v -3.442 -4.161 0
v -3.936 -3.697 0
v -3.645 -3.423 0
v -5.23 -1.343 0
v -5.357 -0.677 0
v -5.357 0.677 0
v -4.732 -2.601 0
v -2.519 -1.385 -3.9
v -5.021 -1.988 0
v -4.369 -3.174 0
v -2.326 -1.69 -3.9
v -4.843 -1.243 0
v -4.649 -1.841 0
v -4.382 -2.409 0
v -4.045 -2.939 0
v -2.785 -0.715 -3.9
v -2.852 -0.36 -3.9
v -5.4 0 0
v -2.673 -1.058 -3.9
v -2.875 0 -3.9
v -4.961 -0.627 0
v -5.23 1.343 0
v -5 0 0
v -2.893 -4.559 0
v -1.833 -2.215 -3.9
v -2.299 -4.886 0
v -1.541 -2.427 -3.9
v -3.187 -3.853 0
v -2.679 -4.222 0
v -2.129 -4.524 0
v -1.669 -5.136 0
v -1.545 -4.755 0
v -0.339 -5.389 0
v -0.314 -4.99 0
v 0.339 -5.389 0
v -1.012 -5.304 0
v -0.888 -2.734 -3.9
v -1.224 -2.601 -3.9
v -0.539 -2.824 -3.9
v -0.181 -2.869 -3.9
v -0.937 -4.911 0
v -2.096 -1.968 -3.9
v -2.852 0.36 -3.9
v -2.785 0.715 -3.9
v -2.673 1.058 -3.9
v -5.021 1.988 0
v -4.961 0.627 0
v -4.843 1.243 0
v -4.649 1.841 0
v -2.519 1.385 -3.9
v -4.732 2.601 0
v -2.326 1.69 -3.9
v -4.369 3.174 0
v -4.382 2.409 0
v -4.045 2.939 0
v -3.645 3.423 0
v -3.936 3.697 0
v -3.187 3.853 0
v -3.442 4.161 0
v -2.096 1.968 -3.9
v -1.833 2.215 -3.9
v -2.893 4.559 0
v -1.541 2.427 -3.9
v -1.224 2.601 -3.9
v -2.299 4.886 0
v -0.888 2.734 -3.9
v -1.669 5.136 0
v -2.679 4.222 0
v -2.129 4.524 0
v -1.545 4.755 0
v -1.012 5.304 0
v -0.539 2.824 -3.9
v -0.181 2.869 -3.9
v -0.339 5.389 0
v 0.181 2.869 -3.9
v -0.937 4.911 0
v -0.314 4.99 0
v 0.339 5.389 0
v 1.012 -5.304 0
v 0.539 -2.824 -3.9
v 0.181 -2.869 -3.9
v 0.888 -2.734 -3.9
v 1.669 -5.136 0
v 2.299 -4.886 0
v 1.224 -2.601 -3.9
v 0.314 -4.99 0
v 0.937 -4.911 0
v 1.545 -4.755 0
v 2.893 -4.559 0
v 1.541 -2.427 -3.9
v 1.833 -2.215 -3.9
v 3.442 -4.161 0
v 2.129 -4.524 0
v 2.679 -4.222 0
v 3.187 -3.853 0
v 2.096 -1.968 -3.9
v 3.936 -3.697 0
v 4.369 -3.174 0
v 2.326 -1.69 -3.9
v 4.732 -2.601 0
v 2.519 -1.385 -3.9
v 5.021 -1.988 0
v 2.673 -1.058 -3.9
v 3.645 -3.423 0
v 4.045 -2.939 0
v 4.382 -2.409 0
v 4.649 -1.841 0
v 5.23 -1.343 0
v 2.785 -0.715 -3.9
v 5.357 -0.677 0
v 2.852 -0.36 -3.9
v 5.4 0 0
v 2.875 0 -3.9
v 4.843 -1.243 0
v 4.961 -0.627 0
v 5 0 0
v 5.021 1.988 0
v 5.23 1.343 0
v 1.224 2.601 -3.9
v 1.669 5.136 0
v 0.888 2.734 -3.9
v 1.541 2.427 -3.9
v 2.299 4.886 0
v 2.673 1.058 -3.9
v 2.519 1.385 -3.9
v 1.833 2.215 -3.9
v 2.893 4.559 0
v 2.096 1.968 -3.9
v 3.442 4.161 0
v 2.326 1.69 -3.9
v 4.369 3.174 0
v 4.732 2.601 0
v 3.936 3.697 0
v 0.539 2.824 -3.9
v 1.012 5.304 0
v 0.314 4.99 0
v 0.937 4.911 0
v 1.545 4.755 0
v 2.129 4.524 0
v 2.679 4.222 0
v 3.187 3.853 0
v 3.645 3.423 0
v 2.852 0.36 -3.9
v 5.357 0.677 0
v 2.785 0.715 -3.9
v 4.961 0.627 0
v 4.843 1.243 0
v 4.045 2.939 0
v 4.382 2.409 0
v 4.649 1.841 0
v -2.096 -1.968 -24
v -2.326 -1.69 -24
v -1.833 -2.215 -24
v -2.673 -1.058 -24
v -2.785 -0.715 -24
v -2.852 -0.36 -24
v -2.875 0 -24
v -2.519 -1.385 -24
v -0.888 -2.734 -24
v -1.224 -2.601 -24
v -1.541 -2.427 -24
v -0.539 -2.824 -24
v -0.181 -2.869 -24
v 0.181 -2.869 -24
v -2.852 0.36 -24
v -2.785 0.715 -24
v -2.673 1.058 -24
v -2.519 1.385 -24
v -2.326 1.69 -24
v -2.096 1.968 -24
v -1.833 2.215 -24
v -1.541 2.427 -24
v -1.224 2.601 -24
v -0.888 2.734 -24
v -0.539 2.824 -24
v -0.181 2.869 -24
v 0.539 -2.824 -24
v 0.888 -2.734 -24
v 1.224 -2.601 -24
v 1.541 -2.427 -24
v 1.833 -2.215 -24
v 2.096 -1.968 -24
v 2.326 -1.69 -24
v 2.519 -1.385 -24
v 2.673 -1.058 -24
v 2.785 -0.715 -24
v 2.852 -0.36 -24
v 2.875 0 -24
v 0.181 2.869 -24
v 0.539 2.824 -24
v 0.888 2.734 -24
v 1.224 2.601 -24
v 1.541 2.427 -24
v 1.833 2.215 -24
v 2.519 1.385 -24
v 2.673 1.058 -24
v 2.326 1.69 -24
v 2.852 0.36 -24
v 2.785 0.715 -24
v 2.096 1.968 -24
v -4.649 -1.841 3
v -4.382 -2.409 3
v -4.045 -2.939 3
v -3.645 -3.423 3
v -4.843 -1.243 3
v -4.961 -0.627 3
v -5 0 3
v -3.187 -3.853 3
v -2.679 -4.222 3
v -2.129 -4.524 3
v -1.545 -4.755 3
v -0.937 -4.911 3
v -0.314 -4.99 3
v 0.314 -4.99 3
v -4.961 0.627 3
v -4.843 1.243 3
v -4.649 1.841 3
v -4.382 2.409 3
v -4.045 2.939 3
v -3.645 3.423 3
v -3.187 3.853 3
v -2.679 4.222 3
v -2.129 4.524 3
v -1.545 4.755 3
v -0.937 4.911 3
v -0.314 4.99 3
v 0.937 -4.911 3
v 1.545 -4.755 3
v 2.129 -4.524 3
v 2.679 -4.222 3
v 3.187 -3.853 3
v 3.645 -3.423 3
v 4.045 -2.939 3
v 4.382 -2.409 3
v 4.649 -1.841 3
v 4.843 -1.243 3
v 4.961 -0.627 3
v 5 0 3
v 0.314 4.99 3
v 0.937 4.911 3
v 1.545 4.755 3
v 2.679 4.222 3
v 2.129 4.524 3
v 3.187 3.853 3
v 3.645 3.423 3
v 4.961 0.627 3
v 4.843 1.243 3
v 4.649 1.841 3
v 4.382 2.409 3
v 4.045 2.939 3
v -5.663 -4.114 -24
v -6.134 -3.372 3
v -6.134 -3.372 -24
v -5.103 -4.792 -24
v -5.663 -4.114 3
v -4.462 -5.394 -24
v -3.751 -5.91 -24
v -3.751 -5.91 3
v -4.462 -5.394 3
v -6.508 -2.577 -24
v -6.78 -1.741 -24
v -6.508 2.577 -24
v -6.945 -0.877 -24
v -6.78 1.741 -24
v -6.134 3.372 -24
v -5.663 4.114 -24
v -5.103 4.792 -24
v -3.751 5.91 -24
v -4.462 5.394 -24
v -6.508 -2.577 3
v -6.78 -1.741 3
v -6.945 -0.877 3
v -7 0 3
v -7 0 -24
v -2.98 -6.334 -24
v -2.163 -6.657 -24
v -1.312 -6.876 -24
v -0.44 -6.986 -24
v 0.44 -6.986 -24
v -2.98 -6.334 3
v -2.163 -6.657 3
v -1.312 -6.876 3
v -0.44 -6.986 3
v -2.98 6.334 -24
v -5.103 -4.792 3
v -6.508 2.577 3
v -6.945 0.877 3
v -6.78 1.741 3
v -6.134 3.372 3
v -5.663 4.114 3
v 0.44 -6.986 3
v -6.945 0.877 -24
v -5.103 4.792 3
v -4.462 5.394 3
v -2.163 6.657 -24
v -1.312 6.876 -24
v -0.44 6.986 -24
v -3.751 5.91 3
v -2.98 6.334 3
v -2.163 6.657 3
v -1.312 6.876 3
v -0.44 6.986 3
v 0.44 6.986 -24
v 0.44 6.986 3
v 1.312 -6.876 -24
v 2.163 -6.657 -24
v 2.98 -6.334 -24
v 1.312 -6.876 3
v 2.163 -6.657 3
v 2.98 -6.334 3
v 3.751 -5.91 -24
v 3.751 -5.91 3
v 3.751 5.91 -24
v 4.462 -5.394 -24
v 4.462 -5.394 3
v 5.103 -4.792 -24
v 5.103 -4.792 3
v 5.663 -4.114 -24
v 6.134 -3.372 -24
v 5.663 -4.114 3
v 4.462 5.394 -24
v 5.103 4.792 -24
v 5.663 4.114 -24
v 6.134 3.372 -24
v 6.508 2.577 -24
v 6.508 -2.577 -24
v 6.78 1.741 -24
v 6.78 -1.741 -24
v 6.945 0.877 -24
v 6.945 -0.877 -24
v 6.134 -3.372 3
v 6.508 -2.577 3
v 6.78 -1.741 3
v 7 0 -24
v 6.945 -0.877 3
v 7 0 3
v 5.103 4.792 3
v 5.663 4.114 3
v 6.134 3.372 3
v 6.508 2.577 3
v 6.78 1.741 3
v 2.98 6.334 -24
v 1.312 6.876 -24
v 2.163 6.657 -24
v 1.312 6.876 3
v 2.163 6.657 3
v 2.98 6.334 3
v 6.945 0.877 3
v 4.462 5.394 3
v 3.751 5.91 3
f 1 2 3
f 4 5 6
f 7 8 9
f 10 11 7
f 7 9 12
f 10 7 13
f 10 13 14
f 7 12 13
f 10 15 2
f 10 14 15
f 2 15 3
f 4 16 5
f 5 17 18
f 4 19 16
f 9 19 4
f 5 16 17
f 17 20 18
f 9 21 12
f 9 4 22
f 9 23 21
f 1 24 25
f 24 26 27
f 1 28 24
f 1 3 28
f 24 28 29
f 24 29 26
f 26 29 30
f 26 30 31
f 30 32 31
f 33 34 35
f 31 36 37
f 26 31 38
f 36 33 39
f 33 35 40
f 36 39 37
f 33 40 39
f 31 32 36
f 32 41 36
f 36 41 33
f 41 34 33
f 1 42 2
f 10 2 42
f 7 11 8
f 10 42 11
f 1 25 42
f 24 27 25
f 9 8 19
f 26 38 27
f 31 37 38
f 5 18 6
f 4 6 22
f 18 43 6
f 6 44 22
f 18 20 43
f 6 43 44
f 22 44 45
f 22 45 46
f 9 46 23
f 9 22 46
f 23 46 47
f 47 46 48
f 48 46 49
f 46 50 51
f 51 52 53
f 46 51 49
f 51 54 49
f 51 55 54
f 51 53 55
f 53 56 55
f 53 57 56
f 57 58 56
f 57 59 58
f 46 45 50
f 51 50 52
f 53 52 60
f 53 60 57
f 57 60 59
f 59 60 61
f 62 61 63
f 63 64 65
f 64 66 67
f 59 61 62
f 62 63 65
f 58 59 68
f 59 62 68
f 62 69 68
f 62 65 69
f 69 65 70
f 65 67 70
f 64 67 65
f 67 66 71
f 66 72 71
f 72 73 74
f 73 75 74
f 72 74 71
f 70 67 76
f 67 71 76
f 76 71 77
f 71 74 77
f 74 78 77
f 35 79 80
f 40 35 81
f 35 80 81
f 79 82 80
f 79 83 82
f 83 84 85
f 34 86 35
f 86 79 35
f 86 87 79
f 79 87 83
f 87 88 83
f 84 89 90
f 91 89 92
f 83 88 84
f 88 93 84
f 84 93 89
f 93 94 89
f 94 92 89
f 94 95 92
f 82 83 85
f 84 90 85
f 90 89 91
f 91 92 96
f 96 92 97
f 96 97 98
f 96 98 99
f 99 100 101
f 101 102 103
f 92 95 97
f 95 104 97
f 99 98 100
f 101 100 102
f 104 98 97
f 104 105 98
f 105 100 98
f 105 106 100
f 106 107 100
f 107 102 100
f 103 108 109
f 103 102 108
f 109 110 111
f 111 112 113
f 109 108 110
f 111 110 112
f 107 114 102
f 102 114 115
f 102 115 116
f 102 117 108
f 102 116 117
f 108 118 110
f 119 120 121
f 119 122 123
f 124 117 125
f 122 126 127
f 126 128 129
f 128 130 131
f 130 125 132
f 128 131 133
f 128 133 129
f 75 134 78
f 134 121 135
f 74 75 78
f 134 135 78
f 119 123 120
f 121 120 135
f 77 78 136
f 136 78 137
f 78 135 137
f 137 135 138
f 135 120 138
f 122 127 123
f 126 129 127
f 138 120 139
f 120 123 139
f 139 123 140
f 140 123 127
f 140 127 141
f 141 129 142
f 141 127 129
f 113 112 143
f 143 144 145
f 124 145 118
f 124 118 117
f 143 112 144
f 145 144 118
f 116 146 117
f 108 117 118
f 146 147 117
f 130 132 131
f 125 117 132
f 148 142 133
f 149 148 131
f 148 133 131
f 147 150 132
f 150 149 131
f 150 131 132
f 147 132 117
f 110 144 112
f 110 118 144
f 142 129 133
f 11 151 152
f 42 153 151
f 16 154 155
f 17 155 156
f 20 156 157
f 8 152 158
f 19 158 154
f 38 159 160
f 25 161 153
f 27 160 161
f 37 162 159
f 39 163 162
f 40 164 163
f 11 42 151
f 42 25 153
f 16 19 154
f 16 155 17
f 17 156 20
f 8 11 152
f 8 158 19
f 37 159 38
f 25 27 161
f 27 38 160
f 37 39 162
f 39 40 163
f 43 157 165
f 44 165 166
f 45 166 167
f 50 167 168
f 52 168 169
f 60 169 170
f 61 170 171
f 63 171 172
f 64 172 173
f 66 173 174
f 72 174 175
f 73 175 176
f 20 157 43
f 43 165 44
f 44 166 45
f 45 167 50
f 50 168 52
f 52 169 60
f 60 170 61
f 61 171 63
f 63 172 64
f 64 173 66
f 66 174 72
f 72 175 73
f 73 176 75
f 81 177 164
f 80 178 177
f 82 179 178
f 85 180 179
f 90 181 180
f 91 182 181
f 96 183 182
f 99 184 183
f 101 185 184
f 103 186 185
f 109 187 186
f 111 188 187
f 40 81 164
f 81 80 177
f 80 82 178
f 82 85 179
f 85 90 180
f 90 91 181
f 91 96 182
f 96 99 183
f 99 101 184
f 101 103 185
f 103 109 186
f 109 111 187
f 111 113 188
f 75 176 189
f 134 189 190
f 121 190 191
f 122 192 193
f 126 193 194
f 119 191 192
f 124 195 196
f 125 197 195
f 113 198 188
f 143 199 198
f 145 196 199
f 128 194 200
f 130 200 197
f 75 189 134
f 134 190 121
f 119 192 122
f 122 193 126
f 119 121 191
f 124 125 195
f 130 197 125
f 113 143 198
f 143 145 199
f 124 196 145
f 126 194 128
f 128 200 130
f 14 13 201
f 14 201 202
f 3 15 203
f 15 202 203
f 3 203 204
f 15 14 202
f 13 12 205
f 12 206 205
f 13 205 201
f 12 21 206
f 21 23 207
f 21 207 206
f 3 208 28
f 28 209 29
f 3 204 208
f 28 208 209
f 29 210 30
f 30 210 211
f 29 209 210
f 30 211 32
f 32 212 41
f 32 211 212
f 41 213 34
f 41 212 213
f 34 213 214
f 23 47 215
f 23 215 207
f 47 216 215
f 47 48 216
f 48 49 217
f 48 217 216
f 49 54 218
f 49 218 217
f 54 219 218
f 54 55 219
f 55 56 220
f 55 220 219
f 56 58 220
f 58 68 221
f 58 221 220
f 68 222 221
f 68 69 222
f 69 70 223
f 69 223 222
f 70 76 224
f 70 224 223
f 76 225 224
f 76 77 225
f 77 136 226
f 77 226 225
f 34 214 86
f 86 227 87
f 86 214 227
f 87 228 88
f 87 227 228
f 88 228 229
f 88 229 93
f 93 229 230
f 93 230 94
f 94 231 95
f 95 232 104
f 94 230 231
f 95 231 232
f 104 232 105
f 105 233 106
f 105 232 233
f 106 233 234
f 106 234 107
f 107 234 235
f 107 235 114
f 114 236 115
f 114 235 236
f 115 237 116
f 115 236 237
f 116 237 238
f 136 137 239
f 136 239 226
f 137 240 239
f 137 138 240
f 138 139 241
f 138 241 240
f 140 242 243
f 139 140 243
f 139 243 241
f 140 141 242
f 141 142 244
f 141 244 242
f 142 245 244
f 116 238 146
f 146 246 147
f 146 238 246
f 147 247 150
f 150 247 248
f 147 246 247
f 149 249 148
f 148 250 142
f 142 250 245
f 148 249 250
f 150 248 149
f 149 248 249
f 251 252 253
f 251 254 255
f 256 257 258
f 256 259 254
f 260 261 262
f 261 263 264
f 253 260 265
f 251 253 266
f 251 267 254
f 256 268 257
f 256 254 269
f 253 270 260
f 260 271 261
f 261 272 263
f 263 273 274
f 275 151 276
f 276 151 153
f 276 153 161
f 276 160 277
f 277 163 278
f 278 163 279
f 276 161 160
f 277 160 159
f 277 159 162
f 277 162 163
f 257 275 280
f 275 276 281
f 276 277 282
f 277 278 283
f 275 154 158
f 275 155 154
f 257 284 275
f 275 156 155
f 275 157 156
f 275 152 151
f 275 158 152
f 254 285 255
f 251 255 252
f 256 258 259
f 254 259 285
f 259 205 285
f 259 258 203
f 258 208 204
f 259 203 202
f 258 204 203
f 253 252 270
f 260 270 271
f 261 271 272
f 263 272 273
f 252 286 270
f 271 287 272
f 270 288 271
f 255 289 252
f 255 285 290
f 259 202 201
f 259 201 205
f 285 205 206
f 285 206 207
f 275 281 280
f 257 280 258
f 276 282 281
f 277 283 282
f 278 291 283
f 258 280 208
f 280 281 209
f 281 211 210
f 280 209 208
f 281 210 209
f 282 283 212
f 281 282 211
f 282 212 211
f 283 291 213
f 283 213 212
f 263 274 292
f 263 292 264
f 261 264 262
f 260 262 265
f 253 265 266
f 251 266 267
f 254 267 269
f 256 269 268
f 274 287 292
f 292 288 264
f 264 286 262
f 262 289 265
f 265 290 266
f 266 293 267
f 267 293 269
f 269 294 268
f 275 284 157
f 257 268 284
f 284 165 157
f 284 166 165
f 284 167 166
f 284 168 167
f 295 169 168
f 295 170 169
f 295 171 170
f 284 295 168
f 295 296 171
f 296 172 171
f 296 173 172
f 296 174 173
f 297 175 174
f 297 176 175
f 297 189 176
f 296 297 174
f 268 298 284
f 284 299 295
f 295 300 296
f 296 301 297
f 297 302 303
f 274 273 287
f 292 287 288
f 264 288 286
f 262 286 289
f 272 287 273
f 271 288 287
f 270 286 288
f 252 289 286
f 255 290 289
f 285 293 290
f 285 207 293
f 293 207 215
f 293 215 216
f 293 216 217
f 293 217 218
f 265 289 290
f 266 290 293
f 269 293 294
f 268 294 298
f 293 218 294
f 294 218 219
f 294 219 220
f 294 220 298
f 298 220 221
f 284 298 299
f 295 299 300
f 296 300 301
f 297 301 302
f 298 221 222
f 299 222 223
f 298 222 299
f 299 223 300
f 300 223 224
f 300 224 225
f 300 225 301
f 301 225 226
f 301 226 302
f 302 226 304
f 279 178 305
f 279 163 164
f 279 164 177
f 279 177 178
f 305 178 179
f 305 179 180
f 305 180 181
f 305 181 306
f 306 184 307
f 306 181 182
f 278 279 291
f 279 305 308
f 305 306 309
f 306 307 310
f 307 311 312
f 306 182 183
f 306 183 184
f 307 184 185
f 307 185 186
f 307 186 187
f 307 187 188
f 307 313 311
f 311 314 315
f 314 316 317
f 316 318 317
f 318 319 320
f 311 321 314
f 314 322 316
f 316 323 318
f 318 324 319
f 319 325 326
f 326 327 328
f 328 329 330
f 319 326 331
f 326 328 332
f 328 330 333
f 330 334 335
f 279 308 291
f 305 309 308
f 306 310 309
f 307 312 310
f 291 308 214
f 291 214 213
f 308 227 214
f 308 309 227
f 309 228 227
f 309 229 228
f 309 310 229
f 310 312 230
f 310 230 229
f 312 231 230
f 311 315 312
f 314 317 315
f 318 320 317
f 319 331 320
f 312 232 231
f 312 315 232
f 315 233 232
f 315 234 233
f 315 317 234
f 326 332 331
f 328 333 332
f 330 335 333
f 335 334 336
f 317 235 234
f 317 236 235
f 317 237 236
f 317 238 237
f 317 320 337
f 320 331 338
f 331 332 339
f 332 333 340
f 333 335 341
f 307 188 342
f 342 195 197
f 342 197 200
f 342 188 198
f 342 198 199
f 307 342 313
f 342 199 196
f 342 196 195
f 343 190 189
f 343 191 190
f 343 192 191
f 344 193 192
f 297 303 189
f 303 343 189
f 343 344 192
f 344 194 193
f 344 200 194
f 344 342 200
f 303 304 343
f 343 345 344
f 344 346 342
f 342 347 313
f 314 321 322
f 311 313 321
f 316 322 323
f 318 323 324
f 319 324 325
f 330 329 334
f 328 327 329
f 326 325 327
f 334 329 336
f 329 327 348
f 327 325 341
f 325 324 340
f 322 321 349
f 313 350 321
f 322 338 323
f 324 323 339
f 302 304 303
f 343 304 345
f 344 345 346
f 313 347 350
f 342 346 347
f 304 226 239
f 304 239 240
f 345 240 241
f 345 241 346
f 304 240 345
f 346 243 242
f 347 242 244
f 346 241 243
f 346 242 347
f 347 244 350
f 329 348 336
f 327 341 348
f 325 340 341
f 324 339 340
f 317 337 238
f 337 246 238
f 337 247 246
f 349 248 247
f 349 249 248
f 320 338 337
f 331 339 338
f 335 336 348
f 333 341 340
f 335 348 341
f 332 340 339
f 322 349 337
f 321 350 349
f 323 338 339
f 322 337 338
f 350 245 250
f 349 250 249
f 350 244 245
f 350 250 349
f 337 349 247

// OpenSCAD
$fn = 50;

difference() {
	union() {
		translate(v = [0, 0, -24.0]) {
			cylinder(h = 27, r = 7.0);
		}
	}
	union() {
		translate(v = [0, 0, 0]) {
			rotate(a = [0, 0, 0]) {
				difference() {
					union() {
						translate(v = [0, 0, -27.0]) {
							cylinder(h = 27, r = 2.6);
						}
						translate(v = [0, 0, -3.9]) {
							cylinder(h = 3.9, r1 = 2.875, r2 = 5.4);
						}
						translate(v = [0, 0, -27.0]) {
							cylinder(h = 27, r = 2.875);
						}
						translate(v = [0, 0, -27.0]) {
							cylinder(h = 27, r = 2.6);
						}
					}
					union();
				}
			}
		}
		#cylinder(h = 3, r = 5.0);
	}
}
